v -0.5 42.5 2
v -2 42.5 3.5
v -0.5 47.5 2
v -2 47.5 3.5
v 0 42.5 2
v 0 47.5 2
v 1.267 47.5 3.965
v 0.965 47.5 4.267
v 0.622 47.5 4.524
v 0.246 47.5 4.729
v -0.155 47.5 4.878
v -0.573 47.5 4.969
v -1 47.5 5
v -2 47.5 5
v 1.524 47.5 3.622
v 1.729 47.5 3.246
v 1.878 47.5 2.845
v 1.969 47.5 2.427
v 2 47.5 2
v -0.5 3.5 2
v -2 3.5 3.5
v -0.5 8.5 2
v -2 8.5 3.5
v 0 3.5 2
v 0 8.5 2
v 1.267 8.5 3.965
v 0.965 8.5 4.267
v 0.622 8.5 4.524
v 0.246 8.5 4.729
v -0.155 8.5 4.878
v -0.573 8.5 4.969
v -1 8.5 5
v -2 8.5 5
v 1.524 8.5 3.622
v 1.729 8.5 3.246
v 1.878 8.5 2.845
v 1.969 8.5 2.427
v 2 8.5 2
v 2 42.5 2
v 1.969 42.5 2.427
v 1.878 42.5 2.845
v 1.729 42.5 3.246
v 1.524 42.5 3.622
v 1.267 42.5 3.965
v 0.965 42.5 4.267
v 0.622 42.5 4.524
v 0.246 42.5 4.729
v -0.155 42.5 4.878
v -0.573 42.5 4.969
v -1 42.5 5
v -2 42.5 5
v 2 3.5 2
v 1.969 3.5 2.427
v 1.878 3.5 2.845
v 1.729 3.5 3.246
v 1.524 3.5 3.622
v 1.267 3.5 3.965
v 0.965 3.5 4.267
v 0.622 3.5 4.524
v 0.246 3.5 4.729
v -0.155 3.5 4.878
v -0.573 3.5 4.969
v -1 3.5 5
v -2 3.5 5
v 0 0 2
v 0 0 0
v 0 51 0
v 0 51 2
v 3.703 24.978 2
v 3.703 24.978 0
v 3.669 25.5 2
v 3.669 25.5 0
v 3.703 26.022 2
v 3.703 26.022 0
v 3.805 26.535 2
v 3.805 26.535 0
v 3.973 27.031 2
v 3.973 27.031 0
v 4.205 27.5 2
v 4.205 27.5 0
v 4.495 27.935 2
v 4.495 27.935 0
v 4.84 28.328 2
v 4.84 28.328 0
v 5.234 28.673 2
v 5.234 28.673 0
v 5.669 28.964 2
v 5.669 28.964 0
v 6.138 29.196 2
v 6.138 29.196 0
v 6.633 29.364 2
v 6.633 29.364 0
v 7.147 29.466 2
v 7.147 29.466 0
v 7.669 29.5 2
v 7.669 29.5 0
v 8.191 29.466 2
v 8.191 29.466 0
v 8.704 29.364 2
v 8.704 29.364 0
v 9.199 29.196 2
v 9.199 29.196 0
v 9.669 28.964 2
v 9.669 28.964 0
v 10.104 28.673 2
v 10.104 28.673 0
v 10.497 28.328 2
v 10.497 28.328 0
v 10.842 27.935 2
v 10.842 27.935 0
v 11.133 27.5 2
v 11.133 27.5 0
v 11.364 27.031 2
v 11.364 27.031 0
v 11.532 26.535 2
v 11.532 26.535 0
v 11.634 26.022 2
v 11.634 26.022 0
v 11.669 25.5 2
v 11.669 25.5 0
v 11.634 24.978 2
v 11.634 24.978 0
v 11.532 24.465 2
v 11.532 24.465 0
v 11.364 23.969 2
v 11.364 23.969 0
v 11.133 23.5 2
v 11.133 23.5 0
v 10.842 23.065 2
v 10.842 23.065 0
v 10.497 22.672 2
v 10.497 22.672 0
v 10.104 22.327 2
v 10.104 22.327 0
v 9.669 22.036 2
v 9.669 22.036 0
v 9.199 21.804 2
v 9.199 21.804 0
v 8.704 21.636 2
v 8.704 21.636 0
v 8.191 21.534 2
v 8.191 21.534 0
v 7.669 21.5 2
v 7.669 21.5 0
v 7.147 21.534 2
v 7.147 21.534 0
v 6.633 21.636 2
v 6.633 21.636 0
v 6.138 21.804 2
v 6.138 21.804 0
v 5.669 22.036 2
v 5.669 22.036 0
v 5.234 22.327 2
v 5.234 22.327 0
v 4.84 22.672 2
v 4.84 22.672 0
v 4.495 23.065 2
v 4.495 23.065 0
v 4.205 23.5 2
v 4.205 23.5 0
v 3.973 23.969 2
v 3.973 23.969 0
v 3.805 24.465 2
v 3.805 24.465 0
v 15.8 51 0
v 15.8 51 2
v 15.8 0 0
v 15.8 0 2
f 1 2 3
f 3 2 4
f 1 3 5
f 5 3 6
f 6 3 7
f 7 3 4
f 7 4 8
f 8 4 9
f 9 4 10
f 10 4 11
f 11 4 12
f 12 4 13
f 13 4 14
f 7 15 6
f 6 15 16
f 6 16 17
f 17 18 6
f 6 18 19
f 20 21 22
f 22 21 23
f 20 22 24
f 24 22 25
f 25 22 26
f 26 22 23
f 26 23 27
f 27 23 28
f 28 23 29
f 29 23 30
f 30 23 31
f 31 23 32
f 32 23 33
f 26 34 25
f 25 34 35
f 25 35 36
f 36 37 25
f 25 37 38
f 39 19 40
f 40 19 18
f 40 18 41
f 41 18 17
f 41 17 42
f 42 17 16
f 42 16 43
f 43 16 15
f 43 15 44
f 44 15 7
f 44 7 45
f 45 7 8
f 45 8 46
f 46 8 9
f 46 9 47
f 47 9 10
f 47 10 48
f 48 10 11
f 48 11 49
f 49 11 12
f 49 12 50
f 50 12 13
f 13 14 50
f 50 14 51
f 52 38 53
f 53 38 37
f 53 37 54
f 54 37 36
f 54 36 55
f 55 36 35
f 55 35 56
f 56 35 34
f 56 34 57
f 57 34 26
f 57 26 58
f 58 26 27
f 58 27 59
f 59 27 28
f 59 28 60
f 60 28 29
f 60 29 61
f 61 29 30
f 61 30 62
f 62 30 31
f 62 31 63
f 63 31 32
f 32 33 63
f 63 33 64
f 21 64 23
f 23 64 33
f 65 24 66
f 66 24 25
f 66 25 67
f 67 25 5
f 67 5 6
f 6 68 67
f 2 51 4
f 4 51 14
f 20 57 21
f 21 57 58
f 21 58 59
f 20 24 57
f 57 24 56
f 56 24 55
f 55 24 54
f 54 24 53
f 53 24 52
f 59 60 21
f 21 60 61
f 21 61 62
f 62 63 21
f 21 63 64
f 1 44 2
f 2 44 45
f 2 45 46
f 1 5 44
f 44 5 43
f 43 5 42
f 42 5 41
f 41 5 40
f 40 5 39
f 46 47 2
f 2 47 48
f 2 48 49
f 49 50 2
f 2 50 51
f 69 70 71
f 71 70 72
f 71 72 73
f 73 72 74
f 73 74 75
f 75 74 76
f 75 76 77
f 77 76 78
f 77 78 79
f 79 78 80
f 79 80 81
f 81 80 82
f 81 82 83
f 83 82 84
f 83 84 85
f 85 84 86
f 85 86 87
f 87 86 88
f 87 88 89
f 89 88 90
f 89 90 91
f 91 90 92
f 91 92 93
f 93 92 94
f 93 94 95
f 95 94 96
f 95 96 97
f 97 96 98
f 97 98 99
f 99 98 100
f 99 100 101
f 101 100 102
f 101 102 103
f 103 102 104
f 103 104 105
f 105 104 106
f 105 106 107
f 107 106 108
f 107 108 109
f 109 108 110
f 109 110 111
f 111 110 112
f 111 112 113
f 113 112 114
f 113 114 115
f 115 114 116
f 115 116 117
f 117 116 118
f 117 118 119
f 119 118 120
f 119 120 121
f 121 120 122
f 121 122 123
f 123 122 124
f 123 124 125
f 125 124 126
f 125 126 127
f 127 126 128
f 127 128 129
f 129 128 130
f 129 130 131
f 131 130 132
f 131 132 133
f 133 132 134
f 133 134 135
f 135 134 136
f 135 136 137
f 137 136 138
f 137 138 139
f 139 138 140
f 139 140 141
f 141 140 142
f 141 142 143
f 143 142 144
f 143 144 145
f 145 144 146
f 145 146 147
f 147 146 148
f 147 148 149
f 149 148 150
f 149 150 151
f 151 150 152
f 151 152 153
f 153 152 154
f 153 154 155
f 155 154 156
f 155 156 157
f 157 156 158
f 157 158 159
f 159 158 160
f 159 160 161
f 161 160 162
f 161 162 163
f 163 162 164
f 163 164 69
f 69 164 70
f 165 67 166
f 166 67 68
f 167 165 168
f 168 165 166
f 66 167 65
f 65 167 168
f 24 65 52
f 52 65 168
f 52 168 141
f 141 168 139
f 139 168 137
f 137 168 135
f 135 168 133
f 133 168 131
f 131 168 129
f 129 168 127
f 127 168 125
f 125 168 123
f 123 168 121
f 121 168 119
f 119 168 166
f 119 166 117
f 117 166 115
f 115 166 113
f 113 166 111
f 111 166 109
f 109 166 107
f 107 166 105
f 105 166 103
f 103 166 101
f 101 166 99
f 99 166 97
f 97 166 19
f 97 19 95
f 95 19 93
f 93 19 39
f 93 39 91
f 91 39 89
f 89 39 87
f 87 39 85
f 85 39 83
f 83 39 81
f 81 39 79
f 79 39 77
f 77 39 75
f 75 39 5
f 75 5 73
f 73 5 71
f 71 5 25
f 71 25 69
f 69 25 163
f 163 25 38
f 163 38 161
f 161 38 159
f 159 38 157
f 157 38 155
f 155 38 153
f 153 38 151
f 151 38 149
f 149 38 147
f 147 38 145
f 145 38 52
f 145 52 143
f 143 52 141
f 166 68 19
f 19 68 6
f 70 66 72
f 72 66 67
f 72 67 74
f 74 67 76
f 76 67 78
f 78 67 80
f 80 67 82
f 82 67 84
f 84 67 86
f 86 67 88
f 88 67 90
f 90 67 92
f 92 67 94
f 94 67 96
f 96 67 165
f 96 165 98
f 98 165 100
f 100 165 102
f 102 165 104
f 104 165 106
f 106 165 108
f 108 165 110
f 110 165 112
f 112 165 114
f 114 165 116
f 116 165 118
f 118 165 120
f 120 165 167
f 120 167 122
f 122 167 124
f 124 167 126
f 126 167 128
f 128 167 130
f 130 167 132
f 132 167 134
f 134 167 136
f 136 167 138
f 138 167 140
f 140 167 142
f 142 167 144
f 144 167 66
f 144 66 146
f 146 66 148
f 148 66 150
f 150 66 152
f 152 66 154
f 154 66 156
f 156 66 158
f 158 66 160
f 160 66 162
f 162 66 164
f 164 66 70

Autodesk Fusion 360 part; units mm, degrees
sketch "Sketch1" plane through (0, 0, 0) normal (0, 0, 1) x (1, 0, 0)
  line L0 (0, 0) -> (15.8, 0)
  line L1 (15.8, 0) -> (15.8, 51)
  line L2 (15.8, 51) -> (0, 51)
  line L3 (0, 51) -> (0, 0)
  dimension "d1" = 15.8
  dimension "d2" = 51
extrude "Extrude1" add sketch "Sketch1" along normal blind 2
sketch "Sketch2" plane through (0, 0, 0) normal (0, 0, -1) x (1, 0, 0)
  line L0 (0, 0) -> (0, -51)
  line L1 (0, -51) -> (15.8, -51)
  line L2 (15.8, -51) -> (15.8, 0)
  line L3 (15.8, 0) -> (0, 0)
  circle A0 centre (7.6687, -25.5) radius 4
  dimension "d5" = 8
extrude "Extrude2" cut sketch "Sketch2" against normal blind 2 contours A0
sketch "Sketch3" plane through (0, 0, 2) normal (0, 0, 1) x (-1, 0, 0)
  line L0 (0, -51) -> (0, 0)
  line L1 (0, 0) -> (-15.8, 0)
  line L2 (-15.8, 0) -> (-15.8, -51)
  line L3 (-15.8, -51) -> (0, -51)
  line L4 (0, -3.5) -> (-2, -3.5)
  line L5 (-2, -3.5) -> (-2, -8.5)
  line L6 (-2, -8.5) -> (0, -8.5)
  line L7 (0, -8.5) -> (0, -3.5)
  line L8 (0, -42.5) -> (-2, -42.5)
  line L9 (-2, -42.5) -> (-2, -47.5)
  line L10 (-2, -47.5) -> (0, -47.5)
  line L11 (0, -47.5) -> (0, -42.5)
  circle A0 centre (-7.6687, -25.5) radius 4
  dimension "d8" = 3.5
  dimension "d9" = 42.5
  dimension "d10" = 2
  dimension "d11" = 2
  dimension "d12" = 5
  dimension "d13" = 5
extrude "Extrude3" add sketch "Sketch3" along normal blind 3 contours L0 L8 L9 L10 L11 | L0 L4 L5 L6 L7
sketch "Sketch4" plane through (0, 0, 0) normal (-1, 0, 0) x (0, -1, 0)
  line L0 (-51, 0) -> (0, 0)
  line L1 (0, 0) -> (0, 2)
  line L2 (0, 2) -> (-3.5, 2)
  line L3 (-3.5, 2) -> (-3.5, 5)
  line L4 (-3.5, 5) -> (-8.5, 5)
  line L5 (-8.5, 5) -> (-8.5, 2)
  line L6 (-8.5, 2) -> (-42.5, 2)
  line L7 (-42.5, 2) -> (-42.5, 5)
  line L8 (-42.5, 5) -> (-47.5, 5)
  line L9 (-47.5, 5) -> (-47.5, 2)
  line L10 (-47.5, 2) -> (-51, 2)
  line L11 (-51, 2) -> (-51, 0)
  line L12 (-47.5, 5) -> (-42.5, 5)
  line L13 (-42.5, 5) -> (-42.5, 2)
  line L14 (-42.5, 2) -> (-47.5, 2)
  line L15 (-47.5, 2) -> (-47.5, 5)
  line L16 (-8.5, 5) -> (-3.5, 5)
  line L17 (-3.5, 5) -> (-3.5, 2)
  line L18 (-3.5, 2) -> (-8.5, 2)
  line L19 (-8.5, 2) -> (-8.5, 5)
extrude "Extrude4" add sketch "Sketch4" along normal blind 2 contours L7 L8 L9 L12 L13 L14 L15 | L3 L4 L5 L16 L17 L18 L19
fillet "Fillet1" radius 3 1 edges at (2, 6, 5)
fillet "Fillet2" radius 3 1 edges at (2, 45, 5)
chamfer "Chamfer1" distance 1.5 angle 45 1 edges at (-2, 6, 2)
chamfer "Chamfer2" distance 1.5 angle 45 1 edges at (-2, 45, 2)
